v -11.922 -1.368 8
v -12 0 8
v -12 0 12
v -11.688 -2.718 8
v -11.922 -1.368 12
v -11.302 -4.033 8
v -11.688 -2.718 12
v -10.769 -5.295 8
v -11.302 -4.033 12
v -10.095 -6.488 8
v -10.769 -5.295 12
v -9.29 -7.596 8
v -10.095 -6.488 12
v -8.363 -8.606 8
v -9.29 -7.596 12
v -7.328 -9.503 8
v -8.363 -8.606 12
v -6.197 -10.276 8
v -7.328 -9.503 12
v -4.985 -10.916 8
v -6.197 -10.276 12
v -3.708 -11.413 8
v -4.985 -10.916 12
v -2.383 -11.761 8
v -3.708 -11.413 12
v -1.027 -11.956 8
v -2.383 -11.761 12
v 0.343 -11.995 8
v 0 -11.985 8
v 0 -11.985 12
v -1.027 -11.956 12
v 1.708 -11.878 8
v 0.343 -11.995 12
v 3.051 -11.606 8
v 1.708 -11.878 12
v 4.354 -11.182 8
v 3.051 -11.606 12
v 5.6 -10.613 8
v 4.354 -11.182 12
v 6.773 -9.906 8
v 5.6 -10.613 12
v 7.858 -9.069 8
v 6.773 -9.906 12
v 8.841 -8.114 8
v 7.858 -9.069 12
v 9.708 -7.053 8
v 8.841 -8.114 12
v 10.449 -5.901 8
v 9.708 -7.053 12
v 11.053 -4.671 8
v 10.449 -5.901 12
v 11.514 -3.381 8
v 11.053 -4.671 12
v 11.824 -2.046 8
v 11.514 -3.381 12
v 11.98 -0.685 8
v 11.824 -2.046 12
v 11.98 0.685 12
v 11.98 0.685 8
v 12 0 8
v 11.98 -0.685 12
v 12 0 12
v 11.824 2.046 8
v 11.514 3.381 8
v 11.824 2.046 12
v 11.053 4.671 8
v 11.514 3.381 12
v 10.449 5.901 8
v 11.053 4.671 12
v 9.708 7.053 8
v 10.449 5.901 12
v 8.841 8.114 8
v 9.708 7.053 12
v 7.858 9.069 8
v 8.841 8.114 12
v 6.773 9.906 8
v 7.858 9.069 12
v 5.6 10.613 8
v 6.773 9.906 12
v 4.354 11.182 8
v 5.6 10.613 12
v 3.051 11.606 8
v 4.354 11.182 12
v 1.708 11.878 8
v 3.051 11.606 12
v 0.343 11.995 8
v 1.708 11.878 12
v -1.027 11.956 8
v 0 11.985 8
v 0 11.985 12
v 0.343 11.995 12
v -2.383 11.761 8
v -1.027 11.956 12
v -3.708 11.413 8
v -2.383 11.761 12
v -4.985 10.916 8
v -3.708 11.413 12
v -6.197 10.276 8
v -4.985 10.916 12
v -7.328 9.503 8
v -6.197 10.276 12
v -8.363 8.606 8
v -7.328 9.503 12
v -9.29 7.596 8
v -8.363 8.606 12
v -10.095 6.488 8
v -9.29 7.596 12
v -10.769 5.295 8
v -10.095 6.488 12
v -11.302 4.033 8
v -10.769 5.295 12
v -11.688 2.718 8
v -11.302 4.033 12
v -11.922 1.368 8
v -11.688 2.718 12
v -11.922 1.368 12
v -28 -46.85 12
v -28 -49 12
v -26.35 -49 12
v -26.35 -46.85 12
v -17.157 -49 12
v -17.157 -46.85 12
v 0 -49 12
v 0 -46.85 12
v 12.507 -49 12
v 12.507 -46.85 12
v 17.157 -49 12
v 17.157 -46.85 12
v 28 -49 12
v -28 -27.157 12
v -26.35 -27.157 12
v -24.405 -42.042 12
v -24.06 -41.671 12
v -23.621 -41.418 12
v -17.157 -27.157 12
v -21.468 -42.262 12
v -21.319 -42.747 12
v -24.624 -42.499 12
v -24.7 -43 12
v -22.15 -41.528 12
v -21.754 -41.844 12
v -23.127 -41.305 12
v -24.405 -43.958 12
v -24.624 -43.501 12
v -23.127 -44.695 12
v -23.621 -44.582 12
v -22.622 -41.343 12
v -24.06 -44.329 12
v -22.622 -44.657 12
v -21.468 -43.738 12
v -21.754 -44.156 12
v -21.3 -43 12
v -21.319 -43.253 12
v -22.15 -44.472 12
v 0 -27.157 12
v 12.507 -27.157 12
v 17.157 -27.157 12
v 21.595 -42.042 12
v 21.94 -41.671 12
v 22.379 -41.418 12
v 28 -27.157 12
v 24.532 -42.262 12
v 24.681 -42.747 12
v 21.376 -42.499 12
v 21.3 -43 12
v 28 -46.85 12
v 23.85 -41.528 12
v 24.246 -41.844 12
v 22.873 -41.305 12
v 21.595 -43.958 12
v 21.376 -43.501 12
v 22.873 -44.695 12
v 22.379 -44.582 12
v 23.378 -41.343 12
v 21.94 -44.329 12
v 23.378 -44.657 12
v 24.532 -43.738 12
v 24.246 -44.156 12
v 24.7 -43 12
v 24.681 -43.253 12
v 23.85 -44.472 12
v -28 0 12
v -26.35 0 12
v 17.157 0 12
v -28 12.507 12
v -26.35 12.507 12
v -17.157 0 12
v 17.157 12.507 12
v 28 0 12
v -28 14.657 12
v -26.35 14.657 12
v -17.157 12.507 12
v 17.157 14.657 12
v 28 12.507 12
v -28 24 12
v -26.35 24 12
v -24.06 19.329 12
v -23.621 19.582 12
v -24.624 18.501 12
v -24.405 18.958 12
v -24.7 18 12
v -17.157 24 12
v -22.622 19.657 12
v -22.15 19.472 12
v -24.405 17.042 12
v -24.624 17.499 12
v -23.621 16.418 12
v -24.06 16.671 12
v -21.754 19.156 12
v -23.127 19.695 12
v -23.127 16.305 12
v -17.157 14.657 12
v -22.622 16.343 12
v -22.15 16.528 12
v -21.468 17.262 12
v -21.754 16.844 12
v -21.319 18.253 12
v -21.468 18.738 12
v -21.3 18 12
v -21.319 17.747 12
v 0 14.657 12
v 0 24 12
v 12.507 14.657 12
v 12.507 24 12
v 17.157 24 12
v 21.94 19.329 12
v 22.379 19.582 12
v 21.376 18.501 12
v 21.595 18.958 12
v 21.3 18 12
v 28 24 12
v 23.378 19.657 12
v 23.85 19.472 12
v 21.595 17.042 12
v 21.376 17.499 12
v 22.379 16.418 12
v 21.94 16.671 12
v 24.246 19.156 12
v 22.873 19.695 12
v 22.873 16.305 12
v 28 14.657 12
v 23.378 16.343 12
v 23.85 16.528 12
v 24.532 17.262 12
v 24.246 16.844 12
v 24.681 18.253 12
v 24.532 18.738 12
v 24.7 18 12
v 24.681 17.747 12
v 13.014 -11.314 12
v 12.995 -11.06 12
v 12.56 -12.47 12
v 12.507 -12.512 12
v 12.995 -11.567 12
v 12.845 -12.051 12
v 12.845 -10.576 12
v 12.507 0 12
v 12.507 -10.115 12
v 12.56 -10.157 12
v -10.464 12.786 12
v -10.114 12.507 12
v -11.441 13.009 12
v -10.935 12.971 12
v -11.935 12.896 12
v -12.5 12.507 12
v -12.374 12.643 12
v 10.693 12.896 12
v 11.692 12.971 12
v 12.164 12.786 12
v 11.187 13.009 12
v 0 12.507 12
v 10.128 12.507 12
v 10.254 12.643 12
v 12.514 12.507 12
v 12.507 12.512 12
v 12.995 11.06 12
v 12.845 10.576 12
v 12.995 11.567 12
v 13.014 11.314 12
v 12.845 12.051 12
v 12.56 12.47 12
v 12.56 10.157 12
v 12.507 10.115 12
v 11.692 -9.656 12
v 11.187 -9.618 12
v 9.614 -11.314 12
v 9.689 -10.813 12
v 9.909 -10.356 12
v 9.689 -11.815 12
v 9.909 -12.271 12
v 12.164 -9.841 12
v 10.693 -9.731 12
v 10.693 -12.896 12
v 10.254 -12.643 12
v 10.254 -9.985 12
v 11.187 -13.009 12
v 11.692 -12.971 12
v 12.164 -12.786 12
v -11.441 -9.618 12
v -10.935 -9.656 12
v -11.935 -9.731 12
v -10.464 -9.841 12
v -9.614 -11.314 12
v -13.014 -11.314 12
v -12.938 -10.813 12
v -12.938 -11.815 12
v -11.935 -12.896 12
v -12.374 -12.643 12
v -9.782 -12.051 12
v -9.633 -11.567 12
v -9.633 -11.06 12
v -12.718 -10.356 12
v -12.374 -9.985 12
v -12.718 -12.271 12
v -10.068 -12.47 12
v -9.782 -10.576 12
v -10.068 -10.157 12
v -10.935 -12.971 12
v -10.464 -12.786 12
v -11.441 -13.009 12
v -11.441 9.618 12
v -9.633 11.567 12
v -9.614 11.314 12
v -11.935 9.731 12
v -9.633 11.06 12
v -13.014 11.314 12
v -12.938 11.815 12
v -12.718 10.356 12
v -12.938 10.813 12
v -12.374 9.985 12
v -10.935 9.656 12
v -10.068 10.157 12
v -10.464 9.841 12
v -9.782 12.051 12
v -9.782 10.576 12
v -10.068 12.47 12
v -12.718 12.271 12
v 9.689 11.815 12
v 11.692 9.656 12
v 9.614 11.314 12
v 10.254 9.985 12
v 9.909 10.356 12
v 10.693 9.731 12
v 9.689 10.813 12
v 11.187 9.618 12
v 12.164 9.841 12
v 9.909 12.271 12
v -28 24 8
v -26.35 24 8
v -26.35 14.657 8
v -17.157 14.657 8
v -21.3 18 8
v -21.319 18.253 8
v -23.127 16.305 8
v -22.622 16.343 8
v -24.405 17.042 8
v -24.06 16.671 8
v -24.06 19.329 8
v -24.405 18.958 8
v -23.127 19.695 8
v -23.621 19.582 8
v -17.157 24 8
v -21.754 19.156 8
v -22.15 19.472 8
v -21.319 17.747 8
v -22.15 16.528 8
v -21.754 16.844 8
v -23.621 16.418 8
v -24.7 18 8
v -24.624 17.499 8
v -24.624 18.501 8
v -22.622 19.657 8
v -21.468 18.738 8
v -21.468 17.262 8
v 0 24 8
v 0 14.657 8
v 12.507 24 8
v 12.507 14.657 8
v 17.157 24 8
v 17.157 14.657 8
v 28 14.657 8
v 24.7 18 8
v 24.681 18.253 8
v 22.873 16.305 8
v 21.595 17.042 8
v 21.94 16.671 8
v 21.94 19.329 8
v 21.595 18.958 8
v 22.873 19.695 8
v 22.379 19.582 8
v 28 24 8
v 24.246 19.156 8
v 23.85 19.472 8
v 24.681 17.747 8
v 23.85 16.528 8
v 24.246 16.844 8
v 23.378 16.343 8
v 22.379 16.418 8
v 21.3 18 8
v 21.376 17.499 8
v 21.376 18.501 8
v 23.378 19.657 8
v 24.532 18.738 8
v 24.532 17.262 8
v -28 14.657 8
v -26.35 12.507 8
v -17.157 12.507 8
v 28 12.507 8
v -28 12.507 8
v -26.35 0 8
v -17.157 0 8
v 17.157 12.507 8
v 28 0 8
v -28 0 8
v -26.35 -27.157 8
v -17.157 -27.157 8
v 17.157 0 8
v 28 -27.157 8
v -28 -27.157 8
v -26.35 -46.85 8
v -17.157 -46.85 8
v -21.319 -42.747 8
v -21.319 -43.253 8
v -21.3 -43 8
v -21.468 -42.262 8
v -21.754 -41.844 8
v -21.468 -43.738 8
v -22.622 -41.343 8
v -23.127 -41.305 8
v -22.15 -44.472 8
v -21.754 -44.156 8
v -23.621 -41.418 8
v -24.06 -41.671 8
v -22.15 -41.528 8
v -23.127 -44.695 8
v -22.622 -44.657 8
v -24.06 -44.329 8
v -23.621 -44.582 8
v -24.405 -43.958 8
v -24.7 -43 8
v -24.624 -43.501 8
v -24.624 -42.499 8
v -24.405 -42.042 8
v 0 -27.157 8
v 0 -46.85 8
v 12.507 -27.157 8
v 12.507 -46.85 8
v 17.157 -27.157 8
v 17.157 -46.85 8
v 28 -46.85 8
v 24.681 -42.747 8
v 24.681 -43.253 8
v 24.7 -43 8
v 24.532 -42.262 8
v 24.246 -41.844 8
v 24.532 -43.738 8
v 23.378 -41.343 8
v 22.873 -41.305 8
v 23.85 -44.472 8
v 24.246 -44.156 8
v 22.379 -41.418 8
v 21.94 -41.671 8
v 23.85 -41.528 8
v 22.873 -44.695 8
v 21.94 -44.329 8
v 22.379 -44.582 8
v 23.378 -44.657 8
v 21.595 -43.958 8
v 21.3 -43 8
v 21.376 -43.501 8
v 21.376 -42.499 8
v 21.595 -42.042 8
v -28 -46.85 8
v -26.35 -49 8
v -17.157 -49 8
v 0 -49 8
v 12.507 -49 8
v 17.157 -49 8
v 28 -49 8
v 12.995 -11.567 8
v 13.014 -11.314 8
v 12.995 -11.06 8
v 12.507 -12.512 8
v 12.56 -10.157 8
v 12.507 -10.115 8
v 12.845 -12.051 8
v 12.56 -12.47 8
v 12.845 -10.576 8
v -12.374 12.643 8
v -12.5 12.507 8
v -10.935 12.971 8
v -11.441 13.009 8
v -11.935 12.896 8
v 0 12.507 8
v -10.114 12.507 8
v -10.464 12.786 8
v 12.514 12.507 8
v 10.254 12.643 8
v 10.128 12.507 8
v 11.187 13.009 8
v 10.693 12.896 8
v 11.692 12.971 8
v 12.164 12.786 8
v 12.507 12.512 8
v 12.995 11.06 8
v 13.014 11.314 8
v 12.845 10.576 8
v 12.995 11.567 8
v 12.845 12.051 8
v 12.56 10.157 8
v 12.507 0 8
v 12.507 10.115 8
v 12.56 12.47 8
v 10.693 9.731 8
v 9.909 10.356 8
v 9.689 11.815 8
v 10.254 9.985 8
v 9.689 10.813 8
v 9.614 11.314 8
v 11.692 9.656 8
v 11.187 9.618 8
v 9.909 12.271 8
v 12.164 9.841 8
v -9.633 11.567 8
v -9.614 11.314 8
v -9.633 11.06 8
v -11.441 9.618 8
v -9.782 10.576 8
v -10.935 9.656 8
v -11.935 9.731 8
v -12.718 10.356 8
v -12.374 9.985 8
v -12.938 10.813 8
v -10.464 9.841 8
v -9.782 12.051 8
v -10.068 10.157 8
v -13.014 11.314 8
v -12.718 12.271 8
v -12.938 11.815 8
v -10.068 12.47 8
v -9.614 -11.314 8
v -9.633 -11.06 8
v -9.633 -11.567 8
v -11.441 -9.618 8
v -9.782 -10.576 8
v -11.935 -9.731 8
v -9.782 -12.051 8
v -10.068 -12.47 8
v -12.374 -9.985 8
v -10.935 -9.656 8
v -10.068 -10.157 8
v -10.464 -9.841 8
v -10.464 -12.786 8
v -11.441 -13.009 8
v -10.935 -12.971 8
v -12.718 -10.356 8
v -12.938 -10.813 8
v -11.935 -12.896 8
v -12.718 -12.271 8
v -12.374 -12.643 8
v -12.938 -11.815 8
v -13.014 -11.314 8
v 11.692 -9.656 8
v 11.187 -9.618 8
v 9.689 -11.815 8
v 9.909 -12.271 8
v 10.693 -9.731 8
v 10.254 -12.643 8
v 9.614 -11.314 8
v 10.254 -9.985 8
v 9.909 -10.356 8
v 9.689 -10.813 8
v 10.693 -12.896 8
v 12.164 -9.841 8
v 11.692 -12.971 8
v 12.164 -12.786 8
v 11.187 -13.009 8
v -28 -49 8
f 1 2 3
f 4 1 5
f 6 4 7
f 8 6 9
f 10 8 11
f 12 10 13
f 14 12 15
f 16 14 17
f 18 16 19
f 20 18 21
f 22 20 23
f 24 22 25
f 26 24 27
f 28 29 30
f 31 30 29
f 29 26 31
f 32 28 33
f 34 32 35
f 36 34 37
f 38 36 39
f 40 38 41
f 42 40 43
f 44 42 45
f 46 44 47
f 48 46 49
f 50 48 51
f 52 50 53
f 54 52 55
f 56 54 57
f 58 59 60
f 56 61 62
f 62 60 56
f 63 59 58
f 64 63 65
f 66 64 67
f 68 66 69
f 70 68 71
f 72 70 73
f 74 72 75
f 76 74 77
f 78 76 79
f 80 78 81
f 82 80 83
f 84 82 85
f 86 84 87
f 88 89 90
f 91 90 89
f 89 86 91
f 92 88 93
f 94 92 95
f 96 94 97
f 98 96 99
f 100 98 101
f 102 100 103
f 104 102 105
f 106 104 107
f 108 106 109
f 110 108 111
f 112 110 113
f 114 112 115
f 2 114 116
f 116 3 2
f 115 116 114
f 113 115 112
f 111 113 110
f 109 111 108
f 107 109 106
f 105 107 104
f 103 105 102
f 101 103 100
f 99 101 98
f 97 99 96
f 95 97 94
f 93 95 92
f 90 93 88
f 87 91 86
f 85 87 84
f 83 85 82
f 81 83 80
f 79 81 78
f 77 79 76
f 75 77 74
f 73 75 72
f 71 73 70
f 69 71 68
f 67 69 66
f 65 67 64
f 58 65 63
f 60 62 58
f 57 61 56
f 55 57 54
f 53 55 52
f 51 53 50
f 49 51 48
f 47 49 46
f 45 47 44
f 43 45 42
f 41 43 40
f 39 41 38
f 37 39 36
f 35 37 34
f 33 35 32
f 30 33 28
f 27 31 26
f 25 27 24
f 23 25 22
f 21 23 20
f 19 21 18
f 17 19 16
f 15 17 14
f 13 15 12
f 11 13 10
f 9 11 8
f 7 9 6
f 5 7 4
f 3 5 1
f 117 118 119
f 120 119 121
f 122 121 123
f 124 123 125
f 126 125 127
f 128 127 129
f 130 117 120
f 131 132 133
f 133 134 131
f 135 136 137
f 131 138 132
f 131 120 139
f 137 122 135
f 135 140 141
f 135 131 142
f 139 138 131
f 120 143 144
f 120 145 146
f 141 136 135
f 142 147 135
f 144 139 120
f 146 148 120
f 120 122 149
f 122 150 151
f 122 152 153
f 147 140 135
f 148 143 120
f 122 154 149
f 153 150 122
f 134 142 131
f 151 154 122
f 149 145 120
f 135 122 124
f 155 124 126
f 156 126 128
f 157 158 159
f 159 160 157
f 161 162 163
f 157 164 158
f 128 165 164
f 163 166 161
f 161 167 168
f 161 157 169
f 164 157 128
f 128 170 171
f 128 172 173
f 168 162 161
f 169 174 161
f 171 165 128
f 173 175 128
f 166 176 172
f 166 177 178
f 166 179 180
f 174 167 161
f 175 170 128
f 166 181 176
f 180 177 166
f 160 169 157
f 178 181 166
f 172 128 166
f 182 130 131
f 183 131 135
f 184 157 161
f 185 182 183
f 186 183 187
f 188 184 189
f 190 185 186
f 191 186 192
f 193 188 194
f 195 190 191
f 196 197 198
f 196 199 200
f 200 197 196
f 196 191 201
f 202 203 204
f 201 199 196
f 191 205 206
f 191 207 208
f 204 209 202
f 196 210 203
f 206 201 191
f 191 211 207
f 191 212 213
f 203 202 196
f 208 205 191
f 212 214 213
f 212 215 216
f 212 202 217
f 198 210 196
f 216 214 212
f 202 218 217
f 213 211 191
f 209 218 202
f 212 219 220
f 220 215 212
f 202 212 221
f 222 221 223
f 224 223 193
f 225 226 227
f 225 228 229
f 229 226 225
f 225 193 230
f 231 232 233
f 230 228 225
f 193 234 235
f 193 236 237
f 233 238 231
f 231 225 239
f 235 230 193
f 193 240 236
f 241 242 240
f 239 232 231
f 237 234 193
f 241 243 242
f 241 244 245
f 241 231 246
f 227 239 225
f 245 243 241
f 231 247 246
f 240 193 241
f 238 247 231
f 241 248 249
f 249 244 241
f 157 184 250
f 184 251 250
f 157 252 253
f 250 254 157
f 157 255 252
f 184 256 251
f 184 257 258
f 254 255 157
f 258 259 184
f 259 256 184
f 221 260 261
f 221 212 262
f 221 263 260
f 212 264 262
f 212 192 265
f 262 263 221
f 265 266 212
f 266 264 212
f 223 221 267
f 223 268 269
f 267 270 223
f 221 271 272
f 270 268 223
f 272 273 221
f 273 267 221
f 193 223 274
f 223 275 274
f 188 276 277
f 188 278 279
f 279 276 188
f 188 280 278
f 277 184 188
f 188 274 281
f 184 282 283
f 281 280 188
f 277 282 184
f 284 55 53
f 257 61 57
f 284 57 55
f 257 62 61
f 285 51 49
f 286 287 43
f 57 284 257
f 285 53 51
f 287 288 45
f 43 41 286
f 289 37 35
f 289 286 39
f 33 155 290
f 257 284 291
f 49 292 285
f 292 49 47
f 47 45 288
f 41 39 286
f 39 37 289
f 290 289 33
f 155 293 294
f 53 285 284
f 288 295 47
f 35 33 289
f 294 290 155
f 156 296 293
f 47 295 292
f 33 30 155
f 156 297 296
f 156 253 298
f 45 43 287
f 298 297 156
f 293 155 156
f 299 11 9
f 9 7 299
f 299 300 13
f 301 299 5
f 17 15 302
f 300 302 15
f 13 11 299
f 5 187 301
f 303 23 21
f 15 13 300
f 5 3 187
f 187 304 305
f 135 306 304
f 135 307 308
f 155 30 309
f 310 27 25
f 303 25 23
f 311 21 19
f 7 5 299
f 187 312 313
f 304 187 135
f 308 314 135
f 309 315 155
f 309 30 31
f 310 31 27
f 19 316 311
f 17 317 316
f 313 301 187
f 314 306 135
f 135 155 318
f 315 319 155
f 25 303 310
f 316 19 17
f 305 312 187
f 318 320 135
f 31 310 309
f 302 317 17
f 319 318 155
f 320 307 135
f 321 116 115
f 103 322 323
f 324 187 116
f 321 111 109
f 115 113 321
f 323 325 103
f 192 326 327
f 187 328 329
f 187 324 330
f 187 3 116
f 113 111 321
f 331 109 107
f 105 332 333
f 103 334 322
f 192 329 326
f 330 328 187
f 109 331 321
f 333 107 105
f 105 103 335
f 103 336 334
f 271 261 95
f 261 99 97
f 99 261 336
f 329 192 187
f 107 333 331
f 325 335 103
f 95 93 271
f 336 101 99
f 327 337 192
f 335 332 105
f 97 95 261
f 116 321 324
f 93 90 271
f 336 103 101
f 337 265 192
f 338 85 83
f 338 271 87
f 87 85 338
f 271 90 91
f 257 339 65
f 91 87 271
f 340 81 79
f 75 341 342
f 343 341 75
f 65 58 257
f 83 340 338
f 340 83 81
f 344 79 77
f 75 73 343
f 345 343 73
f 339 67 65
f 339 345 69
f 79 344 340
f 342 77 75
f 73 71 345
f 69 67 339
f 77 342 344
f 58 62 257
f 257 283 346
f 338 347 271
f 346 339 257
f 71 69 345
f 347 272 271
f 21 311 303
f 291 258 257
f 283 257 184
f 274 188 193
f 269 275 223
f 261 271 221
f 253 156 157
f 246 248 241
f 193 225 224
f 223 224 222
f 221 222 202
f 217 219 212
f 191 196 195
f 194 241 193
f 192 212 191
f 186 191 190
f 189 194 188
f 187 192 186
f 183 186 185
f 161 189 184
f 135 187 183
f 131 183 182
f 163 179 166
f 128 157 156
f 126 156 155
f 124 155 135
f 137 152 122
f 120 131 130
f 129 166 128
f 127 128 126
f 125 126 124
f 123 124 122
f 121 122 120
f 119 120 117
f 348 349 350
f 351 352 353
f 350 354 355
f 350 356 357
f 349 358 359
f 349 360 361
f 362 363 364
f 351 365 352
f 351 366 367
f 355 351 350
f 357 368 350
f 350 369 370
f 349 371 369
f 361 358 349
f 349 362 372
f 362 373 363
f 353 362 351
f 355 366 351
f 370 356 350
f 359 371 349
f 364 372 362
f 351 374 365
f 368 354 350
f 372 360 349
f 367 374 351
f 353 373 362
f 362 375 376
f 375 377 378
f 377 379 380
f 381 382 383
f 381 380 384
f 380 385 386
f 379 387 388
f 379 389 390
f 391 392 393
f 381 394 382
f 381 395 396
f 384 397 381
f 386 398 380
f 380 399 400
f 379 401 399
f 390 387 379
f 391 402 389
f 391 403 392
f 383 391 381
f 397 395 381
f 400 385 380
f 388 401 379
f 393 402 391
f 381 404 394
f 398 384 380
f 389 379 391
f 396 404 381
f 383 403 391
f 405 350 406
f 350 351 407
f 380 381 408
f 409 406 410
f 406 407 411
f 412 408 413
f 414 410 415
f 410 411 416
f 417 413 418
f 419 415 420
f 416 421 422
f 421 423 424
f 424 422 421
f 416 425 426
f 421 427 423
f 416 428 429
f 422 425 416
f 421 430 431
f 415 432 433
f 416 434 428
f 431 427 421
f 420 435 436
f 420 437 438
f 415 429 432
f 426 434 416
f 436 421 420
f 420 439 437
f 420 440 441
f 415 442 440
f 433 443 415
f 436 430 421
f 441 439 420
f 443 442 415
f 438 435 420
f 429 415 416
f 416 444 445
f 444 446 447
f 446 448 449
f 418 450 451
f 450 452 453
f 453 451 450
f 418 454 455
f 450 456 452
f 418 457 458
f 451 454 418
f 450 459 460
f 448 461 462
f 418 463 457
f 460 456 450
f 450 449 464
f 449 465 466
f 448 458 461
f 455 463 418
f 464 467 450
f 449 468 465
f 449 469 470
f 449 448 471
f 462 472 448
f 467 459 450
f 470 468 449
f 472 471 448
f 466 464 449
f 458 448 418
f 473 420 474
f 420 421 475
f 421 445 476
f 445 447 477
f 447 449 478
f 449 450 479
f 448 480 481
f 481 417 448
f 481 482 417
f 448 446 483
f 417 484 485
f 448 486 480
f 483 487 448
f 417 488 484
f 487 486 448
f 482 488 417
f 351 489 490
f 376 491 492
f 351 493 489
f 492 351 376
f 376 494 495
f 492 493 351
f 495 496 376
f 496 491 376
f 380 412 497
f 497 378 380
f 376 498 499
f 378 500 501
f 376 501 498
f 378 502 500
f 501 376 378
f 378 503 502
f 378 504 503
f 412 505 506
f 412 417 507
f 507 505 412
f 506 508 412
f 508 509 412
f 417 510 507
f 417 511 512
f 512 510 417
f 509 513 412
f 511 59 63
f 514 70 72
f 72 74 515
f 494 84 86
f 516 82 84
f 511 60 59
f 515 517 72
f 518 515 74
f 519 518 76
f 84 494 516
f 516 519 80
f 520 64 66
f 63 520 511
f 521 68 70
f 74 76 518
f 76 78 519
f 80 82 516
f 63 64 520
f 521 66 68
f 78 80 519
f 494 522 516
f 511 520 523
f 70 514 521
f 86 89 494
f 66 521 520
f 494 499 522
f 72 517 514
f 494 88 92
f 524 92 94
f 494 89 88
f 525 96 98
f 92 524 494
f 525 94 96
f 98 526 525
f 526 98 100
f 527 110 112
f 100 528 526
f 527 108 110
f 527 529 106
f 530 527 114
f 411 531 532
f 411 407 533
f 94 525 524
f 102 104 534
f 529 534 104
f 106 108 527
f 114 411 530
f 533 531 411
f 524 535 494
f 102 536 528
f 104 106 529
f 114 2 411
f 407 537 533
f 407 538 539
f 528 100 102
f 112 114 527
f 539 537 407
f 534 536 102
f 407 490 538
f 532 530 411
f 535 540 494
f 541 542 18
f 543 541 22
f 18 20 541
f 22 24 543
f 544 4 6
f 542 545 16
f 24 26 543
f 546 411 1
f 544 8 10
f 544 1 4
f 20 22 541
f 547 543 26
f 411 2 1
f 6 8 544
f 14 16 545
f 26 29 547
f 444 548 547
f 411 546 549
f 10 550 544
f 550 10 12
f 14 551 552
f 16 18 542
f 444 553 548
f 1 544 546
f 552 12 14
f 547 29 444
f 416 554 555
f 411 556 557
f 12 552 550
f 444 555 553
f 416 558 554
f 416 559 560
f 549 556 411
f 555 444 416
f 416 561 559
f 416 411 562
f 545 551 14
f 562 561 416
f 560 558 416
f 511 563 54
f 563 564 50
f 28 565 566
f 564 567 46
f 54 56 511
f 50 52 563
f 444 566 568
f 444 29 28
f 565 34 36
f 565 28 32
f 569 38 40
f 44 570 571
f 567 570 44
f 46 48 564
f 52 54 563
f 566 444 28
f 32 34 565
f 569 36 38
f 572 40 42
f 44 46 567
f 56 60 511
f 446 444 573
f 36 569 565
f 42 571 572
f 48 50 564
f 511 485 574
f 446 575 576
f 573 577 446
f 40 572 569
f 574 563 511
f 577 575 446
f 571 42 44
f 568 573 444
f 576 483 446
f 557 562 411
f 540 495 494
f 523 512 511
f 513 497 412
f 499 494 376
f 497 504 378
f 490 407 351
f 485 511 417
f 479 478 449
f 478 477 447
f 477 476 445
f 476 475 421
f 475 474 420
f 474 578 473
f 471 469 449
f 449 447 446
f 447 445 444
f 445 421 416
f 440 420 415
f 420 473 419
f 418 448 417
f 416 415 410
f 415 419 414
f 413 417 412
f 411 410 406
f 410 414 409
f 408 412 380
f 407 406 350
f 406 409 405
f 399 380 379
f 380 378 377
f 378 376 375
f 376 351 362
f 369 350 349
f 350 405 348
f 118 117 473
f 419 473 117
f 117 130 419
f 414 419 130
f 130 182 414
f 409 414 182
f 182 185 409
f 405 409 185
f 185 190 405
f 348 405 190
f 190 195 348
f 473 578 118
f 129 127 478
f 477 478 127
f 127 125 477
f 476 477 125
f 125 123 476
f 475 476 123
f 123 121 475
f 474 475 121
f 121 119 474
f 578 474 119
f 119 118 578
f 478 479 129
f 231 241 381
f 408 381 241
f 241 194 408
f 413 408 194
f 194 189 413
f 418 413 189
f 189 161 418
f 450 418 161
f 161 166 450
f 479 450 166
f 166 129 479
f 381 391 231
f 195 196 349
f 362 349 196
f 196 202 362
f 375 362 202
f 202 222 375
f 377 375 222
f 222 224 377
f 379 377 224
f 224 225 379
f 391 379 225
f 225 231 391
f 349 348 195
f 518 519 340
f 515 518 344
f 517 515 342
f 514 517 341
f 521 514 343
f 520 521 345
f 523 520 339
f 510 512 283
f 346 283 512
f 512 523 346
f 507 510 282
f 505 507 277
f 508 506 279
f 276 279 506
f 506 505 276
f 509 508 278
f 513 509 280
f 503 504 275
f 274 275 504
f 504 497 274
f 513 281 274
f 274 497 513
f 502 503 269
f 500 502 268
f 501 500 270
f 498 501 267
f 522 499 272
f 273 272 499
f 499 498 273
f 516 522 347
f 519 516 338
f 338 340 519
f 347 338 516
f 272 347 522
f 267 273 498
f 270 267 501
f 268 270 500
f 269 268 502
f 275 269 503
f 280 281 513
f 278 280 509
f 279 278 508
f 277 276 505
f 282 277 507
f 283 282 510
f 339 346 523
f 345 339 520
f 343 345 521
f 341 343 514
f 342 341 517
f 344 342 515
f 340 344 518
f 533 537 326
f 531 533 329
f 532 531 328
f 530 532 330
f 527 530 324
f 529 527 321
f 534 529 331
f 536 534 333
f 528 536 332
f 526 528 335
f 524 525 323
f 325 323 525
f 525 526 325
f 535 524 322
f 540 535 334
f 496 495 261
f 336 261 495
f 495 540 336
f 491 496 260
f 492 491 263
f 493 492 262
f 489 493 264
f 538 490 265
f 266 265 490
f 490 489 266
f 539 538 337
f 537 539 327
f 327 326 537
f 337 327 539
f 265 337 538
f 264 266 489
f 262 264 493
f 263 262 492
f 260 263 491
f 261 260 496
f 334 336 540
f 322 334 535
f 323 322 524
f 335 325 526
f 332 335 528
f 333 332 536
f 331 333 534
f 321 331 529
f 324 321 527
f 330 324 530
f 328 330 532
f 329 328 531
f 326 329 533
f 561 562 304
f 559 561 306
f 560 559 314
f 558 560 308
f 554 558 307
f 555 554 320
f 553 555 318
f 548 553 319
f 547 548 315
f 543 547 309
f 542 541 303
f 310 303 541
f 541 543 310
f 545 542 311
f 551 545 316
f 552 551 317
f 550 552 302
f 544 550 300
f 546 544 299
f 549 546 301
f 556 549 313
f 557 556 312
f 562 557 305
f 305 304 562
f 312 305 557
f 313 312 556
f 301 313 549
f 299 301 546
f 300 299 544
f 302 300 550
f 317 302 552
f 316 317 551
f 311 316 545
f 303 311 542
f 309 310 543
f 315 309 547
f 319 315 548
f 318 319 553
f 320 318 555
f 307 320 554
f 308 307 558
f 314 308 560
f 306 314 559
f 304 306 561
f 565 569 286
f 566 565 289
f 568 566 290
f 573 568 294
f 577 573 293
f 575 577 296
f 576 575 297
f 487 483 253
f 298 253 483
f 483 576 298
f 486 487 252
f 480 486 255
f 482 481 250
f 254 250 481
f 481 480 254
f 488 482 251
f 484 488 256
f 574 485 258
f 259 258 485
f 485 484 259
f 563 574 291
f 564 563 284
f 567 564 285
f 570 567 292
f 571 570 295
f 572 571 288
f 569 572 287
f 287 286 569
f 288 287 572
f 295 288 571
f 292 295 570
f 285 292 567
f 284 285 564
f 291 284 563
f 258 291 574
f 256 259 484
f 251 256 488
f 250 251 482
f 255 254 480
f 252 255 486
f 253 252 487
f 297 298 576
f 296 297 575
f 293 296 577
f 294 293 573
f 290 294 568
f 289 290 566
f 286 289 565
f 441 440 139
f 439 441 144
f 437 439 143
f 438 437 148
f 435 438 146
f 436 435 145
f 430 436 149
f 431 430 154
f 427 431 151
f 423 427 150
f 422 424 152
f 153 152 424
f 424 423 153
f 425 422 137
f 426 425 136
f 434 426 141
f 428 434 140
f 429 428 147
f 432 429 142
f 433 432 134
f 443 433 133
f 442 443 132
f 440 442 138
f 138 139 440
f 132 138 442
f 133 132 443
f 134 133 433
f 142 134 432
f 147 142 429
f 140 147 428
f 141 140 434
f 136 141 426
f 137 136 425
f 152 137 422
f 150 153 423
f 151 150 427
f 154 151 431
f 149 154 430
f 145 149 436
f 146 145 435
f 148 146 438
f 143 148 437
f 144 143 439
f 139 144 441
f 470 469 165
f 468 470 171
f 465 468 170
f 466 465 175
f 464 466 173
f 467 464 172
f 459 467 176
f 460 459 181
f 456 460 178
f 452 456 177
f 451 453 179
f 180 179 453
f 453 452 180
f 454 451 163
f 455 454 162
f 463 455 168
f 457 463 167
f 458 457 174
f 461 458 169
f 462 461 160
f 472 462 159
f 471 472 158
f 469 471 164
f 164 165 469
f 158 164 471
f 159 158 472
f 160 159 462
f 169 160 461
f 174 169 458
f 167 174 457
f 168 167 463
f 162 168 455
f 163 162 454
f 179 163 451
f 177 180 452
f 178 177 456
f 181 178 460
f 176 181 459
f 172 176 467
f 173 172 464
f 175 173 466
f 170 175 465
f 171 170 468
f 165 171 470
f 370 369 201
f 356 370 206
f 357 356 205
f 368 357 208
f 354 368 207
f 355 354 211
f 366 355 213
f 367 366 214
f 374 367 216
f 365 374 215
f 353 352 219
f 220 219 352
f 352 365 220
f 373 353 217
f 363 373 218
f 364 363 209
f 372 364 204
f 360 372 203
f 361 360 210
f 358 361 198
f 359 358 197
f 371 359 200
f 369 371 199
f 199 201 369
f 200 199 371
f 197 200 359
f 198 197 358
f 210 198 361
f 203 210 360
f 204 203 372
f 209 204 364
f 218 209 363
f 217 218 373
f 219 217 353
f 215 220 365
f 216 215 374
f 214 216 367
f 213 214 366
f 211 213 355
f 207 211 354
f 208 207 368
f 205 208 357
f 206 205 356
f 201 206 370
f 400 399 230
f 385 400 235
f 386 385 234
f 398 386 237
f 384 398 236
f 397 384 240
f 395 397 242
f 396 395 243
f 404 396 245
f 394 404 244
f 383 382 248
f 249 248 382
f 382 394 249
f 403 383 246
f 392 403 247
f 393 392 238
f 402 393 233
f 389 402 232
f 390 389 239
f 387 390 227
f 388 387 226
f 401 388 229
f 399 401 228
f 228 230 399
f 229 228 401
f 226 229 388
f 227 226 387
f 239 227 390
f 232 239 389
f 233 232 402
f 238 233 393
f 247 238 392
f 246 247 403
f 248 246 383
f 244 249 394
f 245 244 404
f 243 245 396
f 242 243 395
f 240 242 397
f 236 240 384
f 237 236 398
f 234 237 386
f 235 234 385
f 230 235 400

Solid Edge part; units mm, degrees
sketch "Sketch1" plane through (0, 0, 8) normal (0, 0, 1) x (1, 0, 0)
  line L0 (-28, -49) -> (28, -49)
  line L1 (28, -49) -> (28, 24)
  line L2 (28, 24) -> (-28, 24)
  line L3 (-28, 24) -> (-28, -49)
  circle A0 centre (0, 0) radius 12
  circle A1 centre (11.3137, 11.3137) radius 1.7
  circle A2 centre (-11.3137, 11.3137) radius 1.7
  circle A3 centre (-11.3137, -11.3137) radius 1.7
  circle A4 centre (11.3137, -11.3137) radius 1.7
  circle A5 centre (-23, -43) radius 1.7
  circle A6 centre (23, -43) radius 1.7
  circle A7 centre (-23, 18) radius 1.7
  circle A8 centre (23, 18) radius 1.7
extrude "ExtrudedProtrusion_1" add sketch "Sketch1" along normal blind 4
